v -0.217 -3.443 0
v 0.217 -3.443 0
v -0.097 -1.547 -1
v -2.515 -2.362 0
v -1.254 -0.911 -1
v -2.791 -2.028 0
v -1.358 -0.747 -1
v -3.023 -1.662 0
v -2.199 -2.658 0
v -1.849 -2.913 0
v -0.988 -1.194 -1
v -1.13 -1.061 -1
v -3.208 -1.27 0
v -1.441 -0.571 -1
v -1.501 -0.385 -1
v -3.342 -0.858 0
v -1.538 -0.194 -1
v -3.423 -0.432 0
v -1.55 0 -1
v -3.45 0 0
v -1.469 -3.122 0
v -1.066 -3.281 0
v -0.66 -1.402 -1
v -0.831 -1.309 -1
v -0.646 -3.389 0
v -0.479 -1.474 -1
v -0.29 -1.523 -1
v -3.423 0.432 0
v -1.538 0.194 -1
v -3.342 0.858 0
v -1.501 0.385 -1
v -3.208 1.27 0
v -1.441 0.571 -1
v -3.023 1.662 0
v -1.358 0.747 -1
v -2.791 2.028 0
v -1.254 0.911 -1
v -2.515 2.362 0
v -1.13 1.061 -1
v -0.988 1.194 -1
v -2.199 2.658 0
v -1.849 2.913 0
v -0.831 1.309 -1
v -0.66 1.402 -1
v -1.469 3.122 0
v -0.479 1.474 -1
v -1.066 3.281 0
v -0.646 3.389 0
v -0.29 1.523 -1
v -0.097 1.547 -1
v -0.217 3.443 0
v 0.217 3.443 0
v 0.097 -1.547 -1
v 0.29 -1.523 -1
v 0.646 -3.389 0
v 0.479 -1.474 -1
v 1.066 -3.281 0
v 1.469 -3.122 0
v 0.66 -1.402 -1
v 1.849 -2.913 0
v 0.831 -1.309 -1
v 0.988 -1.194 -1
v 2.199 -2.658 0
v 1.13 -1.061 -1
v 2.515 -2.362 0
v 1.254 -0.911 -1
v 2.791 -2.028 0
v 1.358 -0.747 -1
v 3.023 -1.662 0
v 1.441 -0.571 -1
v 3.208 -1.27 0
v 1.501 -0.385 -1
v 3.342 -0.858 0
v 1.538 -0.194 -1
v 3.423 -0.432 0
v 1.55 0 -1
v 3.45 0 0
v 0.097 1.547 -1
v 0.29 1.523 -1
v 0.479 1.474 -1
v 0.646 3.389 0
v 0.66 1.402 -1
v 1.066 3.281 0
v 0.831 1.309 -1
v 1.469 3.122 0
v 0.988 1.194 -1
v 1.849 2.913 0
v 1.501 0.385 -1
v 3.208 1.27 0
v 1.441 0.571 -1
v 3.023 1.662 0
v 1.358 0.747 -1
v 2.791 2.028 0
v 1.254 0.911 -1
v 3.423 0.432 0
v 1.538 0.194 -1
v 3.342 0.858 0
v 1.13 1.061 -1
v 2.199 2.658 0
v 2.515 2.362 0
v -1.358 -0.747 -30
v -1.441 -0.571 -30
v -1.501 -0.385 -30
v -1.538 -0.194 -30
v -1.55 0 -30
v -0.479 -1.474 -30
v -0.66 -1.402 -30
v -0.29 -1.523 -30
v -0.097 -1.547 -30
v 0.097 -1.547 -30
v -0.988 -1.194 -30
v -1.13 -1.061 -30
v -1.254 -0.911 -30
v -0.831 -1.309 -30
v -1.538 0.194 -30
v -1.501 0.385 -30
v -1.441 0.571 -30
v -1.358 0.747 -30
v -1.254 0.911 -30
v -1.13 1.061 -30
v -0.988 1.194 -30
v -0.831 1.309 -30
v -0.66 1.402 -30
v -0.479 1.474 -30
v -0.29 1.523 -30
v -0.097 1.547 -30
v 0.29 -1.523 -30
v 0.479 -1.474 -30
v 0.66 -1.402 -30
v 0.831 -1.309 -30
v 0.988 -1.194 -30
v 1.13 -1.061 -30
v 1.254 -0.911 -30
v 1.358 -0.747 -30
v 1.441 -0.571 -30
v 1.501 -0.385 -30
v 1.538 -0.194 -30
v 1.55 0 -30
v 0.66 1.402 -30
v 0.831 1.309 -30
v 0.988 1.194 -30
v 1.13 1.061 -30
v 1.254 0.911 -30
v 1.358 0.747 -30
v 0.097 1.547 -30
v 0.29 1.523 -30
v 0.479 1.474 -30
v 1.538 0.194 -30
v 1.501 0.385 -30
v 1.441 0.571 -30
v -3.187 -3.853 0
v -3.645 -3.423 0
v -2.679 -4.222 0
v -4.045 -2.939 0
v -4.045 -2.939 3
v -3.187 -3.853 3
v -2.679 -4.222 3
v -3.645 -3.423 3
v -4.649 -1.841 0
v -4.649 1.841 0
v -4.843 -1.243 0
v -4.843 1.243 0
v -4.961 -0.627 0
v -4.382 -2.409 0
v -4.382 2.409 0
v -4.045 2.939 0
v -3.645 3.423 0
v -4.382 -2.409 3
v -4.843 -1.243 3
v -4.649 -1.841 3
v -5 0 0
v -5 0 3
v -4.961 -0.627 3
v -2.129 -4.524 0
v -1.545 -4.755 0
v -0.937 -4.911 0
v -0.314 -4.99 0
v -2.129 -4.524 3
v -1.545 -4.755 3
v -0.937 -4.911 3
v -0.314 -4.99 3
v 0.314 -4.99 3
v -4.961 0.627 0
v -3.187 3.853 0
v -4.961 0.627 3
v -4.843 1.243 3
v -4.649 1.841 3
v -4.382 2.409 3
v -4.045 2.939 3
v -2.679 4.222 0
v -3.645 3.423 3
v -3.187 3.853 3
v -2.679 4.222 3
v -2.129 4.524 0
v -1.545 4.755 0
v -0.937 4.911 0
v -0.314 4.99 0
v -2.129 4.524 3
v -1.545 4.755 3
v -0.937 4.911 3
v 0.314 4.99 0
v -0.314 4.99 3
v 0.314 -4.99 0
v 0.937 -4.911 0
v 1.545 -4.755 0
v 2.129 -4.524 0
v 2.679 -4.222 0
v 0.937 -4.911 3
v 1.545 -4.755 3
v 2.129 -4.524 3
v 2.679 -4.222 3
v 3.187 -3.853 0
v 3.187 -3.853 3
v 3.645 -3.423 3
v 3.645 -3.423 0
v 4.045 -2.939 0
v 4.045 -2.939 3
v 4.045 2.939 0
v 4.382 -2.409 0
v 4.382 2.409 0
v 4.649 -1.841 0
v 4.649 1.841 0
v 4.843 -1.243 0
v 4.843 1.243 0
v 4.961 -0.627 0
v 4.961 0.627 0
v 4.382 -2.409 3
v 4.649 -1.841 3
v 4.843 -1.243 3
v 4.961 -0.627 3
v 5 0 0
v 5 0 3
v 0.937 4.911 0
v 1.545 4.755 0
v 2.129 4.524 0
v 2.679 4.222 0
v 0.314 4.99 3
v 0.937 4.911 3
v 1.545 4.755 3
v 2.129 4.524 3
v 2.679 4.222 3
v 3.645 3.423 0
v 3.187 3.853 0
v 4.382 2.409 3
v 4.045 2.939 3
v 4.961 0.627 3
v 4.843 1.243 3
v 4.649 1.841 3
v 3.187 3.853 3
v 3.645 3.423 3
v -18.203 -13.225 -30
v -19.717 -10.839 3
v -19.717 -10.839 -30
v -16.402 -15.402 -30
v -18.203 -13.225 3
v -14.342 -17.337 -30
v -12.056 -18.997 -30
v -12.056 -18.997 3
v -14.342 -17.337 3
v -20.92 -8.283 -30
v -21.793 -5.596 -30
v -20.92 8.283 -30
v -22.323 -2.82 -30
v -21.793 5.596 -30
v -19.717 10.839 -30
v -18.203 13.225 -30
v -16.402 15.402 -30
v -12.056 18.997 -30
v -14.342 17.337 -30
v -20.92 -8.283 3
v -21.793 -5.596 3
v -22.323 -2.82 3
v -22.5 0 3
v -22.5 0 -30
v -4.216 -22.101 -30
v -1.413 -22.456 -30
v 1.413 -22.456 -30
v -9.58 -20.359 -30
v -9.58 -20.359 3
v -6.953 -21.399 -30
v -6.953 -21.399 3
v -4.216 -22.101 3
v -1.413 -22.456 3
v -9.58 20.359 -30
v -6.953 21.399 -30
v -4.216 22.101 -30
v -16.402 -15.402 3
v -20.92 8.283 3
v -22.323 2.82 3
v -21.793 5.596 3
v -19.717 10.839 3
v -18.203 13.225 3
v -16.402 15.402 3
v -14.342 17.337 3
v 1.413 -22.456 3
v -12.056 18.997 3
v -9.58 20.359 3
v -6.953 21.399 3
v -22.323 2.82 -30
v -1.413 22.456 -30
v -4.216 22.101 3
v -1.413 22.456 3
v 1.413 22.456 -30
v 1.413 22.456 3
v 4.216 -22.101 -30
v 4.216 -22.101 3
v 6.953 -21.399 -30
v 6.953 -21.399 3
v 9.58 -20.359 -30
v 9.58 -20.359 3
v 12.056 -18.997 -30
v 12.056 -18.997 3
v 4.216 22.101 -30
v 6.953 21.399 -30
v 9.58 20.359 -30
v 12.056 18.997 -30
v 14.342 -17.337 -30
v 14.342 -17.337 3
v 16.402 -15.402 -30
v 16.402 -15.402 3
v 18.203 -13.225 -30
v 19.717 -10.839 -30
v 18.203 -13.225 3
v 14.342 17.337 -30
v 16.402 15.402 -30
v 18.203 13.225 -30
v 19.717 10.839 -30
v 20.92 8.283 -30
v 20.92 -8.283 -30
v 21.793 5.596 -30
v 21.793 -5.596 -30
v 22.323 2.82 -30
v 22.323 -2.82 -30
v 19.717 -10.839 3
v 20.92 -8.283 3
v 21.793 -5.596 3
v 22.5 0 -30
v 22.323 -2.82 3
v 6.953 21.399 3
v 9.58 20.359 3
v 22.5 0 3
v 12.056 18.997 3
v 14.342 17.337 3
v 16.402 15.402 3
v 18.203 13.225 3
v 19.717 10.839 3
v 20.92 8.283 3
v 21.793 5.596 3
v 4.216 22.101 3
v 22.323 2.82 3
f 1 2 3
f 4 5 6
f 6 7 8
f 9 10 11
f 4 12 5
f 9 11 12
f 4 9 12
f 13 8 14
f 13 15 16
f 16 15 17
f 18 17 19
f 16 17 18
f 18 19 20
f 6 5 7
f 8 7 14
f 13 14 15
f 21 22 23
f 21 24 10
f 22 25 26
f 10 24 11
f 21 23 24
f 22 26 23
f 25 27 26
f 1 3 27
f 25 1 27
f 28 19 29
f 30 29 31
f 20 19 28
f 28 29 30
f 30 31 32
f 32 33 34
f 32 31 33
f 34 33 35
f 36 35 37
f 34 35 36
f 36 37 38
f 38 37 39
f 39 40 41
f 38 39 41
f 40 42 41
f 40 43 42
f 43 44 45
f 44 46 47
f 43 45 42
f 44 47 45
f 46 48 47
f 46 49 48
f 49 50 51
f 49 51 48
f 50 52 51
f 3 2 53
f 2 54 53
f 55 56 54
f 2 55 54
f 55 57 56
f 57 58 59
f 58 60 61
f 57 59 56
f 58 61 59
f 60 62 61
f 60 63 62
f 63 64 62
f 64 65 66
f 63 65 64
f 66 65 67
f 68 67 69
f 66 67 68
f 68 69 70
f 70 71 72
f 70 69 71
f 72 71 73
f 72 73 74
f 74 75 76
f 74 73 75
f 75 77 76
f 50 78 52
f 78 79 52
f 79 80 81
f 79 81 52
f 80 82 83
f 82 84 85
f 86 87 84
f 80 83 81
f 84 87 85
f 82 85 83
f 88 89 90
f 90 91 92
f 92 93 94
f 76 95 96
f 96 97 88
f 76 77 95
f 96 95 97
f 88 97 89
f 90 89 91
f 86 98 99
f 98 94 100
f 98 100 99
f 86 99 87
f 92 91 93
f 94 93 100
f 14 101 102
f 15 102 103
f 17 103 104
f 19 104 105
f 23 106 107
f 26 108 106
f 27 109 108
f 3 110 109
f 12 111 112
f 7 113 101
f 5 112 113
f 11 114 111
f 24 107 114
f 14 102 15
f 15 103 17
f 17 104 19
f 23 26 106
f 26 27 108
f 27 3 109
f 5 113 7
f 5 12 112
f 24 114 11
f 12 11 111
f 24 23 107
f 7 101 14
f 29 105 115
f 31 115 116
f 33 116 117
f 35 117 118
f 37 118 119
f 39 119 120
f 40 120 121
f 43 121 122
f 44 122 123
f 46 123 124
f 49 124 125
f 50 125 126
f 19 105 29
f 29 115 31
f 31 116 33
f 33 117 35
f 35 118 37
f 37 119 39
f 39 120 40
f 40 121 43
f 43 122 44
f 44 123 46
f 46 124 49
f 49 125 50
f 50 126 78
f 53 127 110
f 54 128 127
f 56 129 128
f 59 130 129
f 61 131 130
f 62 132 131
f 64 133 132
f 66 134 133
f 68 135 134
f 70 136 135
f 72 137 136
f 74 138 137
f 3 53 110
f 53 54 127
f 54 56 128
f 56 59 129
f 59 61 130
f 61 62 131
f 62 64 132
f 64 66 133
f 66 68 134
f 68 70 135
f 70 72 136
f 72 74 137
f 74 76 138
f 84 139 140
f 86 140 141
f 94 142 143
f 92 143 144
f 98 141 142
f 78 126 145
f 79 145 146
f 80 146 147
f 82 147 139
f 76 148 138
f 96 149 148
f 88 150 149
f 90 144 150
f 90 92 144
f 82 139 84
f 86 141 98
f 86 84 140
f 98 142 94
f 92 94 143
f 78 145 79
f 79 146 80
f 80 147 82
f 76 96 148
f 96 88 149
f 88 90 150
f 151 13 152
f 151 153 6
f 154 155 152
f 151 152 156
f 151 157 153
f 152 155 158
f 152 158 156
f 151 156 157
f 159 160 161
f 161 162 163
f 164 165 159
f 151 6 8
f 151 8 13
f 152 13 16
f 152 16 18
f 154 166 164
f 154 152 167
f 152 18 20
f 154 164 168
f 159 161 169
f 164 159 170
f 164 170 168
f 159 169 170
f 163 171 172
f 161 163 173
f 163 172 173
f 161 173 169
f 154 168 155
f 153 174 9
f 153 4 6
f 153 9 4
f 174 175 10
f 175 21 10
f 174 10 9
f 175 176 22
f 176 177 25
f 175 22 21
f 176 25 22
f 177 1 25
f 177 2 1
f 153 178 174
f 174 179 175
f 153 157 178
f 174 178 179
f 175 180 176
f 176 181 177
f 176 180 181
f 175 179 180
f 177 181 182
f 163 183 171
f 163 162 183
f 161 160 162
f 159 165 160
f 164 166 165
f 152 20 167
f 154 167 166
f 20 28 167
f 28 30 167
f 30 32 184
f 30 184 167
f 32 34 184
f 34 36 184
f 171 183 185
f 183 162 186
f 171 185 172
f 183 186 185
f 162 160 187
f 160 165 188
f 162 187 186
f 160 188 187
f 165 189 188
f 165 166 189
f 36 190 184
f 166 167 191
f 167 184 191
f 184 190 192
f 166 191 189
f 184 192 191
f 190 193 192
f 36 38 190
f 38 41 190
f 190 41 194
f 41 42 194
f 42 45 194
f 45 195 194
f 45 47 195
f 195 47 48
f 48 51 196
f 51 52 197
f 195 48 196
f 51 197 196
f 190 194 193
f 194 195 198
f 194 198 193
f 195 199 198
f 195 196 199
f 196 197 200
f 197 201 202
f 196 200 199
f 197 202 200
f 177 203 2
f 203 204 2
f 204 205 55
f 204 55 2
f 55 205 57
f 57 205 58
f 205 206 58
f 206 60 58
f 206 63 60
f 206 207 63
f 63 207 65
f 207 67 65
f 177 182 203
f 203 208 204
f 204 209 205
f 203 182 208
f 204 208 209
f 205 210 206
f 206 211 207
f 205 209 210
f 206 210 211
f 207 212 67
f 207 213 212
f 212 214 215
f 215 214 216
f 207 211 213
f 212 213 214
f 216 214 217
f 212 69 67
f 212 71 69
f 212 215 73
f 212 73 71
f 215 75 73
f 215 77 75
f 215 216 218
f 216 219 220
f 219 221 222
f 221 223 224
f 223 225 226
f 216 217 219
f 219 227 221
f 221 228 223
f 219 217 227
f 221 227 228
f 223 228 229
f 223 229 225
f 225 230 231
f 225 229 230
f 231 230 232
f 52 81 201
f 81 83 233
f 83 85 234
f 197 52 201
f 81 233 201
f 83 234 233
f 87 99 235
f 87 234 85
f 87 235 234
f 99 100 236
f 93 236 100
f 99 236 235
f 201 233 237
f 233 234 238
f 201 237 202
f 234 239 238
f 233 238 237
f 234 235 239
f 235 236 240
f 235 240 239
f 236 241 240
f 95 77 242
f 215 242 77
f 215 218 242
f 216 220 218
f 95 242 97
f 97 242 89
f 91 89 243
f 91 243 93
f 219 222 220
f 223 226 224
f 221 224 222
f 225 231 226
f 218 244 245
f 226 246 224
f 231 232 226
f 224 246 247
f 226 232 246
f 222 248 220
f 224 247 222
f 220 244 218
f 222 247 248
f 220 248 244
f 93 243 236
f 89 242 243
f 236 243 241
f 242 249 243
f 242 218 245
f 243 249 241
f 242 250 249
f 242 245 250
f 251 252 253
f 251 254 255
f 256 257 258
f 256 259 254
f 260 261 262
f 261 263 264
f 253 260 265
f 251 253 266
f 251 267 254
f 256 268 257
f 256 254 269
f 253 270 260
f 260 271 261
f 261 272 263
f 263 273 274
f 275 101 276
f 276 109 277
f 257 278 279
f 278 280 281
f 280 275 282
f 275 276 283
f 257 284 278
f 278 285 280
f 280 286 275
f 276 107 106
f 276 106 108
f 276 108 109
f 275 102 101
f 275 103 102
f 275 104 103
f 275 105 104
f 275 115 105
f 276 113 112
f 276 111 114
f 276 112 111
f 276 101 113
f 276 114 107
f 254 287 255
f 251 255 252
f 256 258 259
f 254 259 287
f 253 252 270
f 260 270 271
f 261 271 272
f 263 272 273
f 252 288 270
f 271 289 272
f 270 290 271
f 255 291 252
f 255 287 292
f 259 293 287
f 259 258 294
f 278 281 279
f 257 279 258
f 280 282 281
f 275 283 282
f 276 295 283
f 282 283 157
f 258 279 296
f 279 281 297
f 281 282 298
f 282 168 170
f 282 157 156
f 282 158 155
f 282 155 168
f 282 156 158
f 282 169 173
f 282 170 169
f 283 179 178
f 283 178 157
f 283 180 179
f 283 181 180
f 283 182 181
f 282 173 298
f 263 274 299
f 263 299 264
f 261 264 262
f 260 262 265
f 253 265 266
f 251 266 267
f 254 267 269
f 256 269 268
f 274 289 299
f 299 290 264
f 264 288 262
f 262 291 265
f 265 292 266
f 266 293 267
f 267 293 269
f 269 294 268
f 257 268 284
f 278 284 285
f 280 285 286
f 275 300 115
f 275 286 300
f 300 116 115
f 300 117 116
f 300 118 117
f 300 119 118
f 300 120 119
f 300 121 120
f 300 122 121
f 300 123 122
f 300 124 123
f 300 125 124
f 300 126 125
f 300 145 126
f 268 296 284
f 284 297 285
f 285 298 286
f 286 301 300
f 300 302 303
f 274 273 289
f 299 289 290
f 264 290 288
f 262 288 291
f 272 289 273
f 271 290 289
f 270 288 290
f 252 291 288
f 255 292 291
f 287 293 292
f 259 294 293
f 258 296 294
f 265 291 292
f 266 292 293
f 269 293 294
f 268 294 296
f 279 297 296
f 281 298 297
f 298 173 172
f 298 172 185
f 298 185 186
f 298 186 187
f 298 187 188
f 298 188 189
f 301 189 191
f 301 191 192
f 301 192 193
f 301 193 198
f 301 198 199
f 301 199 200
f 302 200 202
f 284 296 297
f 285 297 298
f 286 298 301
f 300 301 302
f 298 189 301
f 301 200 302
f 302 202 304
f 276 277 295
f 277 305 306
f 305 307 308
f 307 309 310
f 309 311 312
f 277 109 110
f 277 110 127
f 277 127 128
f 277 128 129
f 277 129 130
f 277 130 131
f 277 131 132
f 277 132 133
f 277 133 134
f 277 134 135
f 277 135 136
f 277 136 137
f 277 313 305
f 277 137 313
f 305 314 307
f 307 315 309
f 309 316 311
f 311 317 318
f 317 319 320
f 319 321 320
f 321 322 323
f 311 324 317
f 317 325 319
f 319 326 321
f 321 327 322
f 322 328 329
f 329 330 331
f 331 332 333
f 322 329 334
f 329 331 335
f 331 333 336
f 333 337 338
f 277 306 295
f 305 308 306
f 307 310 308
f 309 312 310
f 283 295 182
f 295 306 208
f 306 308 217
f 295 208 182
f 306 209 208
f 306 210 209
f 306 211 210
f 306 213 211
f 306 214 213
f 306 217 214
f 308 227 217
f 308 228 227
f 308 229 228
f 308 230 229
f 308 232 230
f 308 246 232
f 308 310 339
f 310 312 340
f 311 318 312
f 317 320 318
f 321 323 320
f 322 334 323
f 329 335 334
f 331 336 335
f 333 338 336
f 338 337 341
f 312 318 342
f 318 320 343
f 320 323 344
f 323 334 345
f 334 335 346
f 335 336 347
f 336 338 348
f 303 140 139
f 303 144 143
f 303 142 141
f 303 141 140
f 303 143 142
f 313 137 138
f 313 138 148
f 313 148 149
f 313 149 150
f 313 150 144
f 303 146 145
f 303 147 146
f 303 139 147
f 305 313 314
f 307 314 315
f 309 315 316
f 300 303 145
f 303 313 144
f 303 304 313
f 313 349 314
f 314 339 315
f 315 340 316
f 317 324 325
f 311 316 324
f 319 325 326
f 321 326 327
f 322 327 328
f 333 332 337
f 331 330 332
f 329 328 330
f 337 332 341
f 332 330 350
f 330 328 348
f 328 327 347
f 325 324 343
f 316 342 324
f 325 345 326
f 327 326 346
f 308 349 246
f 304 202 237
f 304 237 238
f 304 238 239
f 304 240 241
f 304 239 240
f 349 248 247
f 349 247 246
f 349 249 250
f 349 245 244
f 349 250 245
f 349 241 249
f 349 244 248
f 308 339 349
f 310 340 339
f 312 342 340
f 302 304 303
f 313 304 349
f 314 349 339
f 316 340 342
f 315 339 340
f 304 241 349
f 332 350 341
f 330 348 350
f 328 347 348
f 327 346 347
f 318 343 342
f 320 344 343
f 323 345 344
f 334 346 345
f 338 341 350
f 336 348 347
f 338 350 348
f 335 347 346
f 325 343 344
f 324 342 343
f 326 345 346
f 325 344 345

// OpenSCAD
$fn = 50;

difference() {
	union() {
		translate(v = [0, 0, -30.0]) {
			cylinder(h = 33, r = 22.5);
		}
	}
	union() {
		translate(v = [0, 0, 0]) {
			rotate(a = [0, 0, 0]) {
				difference() {
					union() {
						translate(v = [0, 0, -33.0]) {
							cylinder(h = 33, r = 1.25);
						}
						translate(v = [0, 0, -1.0]) {
							cylinder(h = 1.0, r1 = 1.55, r2 = 3.45);
						}
						translate(v = [0, 0, -33.0]) {
							cylinder(h = 33, r = 1.55);
						}
						translate(v = [0, 0, -33.0]) {
							cylinder(h = 33, r = 1.25);
						}
					}
					union();
				}
			}
		}
		#cylinder(h = 3, r = 5.0);
	}
}
